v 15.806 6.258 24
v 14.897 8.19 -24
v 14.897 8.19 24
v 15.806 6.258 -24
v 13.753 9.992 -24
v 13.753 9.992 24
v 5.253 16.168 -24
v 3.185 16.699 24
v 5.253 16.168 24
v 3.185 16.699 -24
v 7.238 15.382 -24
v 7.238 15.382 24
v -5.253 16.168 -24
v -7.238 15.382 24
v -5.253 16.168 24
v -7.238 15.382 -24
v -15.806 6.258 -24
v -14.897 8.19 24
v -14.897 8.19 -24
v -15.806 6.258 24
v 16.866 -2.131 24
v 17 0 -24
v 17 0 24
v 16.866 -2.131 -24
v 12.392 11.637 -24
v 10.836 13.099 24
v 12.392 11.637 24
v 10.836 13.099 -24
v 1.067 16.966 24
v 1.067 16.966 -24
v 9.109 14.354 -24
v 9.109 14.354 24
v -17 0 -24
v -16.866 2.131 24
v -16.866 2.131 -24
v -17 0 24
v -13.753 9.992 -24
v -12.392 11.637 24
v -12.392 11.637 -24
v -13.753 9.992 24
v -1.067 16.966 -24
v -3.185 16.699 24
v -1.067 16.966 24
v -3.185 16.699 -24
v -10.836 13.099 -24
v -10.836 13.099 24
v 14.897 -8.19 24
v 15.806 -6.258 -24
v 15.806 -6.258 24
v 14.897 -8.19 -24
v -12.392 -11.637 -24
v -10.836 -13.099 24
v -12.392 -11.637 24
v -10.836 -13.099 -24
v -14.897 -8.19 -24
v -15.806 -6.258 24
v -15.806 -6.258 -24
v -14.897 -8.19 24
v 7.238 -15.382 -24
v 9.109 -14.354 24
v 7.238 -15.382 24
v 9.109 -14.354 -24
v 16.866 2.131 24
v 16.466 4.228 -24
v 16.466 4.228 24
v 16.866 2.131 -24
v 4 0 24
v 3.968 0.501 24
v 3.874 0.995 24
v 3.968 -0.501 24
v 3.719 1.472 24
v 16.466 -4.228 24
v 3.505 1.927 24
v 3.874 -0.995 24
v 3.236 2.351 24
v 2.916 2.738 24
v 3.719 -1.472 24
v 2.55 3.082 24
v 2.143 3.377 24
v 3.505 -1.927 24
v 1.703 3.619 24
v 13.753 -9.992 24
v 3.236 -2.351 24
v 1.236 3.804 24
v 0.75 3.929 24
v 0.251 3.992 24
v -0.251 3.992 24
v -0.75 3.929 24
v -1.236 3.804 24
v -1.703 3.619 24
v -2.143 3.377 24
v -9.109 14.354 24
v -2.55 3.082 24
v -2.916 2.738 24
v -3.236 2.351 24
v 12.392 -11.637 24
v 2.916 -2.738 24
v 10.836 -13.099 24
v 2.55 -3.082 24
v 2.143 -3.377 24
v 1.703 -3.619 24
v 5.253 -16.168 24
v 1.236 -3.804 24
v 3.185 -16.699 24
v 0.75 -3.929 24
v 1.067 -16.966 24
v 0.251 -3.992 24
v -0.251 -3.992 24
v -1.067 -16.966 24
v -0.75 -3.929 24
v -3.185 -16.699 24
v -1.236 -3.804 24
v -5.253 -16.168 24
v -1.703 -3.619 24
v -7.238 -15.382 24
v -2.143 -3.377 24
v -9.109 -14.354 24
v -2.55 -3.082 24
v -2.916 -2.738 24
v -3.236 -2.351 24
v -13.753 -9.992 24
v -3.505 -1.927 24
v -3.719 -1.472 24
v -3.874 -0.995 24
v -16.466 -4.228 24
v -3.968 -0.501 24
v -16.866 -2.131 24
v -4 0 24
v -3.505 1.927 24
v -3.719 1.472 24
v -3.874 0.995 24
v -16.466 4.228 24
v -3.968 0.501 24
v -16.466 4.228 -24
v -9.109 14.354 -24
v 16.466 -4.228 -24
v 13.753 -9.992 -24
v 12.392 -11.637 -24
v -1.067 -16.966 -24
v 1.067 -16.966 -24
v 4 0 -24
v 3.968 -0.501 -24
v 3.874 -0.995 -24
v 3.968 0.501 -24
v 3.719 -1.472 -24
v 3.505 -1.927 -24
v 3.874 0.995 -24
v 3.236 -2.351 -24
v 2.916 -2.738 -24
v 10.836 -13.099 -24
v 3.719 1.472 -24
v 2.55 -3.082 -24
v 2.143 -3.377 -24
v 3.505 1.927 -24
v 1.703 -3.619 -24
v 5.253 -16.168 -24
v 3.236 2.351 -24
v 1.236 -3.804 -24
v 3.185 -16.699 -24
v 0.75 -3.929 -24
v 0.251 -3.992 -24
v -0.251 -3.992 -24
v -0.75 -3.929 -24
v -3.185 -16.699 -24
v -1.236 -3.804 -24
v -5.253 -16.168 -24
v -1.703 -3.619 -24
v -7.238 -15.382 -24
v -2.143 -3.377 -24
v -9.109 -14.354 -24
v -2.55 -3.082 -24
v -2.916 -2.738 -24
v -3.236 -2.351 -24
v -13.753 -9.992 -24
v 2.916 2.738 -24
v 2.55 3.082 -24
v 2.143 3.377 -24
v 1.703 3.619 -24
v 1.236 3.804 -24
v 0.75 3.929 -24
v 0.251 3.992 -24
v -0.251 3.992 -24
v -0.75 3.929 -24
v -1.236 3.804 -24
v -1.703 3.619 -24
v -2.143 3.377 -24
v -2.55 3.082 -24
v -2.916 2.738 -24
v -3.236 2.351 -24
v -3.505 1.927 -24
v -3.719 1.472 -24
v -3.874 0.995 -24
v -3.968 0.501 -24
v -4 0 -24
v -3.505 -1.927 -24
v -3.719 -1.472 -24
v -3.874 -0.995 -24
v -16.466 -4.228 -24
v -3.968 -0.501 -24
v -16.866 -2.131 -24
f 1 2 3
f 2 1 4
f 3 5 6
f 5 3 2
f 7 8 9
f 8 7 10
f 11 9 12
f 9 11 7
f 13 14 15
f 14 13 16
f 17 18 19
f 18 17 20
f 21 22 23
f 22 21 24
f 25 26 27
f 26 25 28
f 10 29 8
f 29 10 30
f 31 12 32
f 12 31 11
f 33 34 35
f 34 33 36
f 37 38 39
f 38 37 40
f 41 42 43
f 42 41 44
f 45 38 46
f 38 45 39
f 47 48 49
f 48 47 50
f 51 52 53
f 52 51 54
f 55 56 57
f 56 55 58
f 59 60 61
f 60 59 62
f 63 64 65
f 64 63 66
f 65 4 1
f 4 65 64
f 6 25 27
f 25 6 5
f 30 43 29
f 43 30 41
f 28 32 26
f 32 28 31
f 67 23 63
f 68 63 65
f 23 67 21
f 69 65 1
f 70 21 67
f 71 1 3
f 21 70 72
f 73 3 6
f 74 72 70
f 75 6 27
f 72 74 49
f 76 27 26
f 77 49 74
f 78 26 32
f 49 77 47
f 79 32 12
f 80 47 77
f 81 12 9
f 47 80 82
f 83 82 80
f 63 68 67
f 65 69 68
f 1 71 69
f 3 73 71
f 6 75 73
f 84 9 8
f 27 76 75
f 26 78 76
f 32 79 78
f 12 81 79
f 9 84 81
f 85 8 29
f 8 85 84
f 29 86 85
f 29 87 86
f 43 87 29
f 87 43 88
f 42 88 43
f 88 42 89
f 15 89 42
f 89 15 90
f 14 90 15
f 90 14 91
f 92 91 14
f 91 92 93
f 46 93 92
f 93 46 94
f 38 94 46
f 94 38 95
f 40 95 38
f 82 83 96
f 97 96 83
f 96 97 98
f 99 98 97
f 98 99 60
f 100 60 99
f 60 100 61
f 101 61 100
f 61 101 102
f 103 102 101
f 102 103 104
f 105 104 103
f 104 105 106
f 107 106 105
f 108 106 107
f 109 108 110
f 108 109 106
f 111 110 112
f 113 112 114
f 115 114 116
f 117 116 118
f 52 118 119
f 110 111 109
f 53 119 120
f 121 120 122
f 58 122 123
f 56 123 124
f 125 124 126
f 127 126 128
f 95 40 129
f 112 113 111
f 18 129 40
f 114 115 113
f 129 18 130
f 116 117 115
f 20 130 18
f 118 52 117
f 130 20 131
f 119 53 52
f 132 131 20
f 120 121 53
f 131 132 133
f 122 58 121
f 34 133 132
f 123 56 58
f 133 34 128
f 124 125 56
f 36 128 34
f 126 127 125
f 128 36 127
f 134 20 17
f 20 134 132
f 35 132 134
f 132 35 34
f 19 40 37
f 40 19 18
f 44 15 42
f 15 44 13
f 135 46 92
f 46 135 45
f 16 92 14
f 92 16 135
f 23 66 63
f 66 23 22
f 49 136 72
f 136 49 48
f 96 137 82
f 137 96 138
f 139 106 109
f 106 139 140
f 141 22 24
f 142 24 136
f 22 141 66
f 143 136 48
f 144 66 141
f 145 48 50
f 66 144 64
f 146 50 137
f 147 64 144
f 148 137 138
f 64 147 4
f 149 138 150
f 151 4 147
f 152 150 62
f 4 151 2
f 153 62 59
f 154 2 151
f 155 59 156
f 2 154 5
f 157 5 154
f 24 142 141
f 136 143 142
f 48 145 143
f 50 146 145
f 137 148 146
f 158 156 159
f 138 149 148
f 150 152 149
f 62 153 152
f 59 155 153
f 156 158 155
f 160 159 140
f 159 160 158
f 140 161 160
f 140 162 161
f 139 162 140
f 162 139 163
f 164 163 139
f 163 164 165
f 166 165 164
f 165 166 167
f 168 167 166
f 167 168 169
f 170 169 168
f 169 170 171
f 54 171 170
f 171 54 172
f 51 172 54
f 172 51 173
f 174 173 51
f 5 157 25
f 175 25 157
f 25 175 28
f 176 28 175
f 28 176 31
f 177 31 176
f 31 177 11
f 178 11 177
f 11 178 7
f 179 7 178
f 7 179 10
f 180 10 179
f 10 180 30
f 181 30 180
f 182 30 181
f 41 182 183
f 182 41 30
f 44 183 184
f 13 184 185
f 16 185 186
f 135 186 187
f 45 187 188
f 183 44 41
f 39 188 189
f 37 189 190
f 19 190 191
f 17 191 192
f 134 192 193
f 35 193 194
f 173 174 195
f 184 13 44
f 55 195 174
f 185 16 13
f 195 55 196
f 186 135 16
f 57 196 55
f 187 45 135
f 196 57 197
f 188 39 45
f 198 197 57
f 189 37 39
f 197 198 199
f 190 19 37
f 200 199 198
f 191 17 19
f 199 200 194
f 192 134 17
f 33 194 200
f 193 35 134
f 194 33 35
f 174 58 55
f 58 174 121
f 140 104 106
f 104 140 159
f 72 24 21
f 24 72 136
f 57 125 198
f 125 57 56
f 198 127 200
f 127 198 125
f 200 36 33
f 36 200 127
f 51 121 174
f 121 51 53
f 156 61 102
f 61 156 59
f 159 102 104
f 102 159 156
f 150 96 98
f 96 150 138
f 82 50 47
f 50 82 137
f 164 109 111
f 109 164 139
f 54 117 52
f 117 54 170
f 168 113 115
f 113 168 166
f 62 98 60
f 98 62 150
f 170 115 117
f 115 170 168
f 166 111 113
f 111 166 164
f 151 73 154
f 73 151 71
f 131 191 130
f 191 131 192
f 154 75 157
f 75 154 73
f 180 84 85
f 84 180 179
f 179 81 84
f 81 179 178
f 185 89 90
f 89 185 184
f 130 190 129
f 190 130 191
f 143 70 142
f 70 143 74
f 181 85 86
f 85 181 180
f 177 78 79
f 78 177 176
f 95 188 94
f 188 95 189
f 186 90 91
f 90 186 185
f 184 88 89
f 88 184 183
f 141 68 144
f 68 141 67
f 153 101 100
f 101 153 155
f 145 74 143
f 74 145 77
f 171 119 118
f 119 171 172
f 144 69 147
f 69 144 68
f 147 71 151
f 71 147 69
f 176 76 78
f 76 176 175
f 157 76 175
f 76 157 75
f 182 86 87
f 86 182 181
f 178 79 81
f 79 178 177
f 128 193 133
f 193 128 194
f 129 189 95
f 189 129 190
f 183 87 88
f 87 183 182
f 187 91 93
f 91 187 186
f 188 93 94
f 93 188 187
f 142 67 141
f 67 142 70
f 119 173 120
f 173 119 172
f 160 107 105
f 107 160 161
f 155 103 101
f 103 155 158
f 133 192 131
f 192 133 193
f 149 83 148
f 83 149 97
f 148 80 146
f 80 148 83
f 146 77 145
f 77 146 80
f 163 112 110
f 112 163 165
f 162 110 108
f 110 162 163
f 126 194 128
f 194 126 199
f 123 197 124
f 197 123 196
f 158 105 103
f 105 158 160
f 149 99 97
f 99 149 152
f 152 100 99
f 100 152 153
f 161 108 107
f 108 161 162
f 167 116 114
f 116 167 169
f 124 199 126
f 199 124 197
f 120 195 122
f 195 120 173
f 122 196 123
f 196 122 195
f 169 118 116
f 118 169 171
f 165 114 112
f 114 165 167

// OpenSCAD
$fn = 50;


difference() {
	union() {
		translate(v = [0, 0, -24.0000000000]) {
			cylinder(h = 48, r = 17.0000000000);
		}
	}
	union() {
		translate(v = [0, 0, -100.0000000000]) {
			cylinder(h = 200, r = 4);
		}
	}
}
